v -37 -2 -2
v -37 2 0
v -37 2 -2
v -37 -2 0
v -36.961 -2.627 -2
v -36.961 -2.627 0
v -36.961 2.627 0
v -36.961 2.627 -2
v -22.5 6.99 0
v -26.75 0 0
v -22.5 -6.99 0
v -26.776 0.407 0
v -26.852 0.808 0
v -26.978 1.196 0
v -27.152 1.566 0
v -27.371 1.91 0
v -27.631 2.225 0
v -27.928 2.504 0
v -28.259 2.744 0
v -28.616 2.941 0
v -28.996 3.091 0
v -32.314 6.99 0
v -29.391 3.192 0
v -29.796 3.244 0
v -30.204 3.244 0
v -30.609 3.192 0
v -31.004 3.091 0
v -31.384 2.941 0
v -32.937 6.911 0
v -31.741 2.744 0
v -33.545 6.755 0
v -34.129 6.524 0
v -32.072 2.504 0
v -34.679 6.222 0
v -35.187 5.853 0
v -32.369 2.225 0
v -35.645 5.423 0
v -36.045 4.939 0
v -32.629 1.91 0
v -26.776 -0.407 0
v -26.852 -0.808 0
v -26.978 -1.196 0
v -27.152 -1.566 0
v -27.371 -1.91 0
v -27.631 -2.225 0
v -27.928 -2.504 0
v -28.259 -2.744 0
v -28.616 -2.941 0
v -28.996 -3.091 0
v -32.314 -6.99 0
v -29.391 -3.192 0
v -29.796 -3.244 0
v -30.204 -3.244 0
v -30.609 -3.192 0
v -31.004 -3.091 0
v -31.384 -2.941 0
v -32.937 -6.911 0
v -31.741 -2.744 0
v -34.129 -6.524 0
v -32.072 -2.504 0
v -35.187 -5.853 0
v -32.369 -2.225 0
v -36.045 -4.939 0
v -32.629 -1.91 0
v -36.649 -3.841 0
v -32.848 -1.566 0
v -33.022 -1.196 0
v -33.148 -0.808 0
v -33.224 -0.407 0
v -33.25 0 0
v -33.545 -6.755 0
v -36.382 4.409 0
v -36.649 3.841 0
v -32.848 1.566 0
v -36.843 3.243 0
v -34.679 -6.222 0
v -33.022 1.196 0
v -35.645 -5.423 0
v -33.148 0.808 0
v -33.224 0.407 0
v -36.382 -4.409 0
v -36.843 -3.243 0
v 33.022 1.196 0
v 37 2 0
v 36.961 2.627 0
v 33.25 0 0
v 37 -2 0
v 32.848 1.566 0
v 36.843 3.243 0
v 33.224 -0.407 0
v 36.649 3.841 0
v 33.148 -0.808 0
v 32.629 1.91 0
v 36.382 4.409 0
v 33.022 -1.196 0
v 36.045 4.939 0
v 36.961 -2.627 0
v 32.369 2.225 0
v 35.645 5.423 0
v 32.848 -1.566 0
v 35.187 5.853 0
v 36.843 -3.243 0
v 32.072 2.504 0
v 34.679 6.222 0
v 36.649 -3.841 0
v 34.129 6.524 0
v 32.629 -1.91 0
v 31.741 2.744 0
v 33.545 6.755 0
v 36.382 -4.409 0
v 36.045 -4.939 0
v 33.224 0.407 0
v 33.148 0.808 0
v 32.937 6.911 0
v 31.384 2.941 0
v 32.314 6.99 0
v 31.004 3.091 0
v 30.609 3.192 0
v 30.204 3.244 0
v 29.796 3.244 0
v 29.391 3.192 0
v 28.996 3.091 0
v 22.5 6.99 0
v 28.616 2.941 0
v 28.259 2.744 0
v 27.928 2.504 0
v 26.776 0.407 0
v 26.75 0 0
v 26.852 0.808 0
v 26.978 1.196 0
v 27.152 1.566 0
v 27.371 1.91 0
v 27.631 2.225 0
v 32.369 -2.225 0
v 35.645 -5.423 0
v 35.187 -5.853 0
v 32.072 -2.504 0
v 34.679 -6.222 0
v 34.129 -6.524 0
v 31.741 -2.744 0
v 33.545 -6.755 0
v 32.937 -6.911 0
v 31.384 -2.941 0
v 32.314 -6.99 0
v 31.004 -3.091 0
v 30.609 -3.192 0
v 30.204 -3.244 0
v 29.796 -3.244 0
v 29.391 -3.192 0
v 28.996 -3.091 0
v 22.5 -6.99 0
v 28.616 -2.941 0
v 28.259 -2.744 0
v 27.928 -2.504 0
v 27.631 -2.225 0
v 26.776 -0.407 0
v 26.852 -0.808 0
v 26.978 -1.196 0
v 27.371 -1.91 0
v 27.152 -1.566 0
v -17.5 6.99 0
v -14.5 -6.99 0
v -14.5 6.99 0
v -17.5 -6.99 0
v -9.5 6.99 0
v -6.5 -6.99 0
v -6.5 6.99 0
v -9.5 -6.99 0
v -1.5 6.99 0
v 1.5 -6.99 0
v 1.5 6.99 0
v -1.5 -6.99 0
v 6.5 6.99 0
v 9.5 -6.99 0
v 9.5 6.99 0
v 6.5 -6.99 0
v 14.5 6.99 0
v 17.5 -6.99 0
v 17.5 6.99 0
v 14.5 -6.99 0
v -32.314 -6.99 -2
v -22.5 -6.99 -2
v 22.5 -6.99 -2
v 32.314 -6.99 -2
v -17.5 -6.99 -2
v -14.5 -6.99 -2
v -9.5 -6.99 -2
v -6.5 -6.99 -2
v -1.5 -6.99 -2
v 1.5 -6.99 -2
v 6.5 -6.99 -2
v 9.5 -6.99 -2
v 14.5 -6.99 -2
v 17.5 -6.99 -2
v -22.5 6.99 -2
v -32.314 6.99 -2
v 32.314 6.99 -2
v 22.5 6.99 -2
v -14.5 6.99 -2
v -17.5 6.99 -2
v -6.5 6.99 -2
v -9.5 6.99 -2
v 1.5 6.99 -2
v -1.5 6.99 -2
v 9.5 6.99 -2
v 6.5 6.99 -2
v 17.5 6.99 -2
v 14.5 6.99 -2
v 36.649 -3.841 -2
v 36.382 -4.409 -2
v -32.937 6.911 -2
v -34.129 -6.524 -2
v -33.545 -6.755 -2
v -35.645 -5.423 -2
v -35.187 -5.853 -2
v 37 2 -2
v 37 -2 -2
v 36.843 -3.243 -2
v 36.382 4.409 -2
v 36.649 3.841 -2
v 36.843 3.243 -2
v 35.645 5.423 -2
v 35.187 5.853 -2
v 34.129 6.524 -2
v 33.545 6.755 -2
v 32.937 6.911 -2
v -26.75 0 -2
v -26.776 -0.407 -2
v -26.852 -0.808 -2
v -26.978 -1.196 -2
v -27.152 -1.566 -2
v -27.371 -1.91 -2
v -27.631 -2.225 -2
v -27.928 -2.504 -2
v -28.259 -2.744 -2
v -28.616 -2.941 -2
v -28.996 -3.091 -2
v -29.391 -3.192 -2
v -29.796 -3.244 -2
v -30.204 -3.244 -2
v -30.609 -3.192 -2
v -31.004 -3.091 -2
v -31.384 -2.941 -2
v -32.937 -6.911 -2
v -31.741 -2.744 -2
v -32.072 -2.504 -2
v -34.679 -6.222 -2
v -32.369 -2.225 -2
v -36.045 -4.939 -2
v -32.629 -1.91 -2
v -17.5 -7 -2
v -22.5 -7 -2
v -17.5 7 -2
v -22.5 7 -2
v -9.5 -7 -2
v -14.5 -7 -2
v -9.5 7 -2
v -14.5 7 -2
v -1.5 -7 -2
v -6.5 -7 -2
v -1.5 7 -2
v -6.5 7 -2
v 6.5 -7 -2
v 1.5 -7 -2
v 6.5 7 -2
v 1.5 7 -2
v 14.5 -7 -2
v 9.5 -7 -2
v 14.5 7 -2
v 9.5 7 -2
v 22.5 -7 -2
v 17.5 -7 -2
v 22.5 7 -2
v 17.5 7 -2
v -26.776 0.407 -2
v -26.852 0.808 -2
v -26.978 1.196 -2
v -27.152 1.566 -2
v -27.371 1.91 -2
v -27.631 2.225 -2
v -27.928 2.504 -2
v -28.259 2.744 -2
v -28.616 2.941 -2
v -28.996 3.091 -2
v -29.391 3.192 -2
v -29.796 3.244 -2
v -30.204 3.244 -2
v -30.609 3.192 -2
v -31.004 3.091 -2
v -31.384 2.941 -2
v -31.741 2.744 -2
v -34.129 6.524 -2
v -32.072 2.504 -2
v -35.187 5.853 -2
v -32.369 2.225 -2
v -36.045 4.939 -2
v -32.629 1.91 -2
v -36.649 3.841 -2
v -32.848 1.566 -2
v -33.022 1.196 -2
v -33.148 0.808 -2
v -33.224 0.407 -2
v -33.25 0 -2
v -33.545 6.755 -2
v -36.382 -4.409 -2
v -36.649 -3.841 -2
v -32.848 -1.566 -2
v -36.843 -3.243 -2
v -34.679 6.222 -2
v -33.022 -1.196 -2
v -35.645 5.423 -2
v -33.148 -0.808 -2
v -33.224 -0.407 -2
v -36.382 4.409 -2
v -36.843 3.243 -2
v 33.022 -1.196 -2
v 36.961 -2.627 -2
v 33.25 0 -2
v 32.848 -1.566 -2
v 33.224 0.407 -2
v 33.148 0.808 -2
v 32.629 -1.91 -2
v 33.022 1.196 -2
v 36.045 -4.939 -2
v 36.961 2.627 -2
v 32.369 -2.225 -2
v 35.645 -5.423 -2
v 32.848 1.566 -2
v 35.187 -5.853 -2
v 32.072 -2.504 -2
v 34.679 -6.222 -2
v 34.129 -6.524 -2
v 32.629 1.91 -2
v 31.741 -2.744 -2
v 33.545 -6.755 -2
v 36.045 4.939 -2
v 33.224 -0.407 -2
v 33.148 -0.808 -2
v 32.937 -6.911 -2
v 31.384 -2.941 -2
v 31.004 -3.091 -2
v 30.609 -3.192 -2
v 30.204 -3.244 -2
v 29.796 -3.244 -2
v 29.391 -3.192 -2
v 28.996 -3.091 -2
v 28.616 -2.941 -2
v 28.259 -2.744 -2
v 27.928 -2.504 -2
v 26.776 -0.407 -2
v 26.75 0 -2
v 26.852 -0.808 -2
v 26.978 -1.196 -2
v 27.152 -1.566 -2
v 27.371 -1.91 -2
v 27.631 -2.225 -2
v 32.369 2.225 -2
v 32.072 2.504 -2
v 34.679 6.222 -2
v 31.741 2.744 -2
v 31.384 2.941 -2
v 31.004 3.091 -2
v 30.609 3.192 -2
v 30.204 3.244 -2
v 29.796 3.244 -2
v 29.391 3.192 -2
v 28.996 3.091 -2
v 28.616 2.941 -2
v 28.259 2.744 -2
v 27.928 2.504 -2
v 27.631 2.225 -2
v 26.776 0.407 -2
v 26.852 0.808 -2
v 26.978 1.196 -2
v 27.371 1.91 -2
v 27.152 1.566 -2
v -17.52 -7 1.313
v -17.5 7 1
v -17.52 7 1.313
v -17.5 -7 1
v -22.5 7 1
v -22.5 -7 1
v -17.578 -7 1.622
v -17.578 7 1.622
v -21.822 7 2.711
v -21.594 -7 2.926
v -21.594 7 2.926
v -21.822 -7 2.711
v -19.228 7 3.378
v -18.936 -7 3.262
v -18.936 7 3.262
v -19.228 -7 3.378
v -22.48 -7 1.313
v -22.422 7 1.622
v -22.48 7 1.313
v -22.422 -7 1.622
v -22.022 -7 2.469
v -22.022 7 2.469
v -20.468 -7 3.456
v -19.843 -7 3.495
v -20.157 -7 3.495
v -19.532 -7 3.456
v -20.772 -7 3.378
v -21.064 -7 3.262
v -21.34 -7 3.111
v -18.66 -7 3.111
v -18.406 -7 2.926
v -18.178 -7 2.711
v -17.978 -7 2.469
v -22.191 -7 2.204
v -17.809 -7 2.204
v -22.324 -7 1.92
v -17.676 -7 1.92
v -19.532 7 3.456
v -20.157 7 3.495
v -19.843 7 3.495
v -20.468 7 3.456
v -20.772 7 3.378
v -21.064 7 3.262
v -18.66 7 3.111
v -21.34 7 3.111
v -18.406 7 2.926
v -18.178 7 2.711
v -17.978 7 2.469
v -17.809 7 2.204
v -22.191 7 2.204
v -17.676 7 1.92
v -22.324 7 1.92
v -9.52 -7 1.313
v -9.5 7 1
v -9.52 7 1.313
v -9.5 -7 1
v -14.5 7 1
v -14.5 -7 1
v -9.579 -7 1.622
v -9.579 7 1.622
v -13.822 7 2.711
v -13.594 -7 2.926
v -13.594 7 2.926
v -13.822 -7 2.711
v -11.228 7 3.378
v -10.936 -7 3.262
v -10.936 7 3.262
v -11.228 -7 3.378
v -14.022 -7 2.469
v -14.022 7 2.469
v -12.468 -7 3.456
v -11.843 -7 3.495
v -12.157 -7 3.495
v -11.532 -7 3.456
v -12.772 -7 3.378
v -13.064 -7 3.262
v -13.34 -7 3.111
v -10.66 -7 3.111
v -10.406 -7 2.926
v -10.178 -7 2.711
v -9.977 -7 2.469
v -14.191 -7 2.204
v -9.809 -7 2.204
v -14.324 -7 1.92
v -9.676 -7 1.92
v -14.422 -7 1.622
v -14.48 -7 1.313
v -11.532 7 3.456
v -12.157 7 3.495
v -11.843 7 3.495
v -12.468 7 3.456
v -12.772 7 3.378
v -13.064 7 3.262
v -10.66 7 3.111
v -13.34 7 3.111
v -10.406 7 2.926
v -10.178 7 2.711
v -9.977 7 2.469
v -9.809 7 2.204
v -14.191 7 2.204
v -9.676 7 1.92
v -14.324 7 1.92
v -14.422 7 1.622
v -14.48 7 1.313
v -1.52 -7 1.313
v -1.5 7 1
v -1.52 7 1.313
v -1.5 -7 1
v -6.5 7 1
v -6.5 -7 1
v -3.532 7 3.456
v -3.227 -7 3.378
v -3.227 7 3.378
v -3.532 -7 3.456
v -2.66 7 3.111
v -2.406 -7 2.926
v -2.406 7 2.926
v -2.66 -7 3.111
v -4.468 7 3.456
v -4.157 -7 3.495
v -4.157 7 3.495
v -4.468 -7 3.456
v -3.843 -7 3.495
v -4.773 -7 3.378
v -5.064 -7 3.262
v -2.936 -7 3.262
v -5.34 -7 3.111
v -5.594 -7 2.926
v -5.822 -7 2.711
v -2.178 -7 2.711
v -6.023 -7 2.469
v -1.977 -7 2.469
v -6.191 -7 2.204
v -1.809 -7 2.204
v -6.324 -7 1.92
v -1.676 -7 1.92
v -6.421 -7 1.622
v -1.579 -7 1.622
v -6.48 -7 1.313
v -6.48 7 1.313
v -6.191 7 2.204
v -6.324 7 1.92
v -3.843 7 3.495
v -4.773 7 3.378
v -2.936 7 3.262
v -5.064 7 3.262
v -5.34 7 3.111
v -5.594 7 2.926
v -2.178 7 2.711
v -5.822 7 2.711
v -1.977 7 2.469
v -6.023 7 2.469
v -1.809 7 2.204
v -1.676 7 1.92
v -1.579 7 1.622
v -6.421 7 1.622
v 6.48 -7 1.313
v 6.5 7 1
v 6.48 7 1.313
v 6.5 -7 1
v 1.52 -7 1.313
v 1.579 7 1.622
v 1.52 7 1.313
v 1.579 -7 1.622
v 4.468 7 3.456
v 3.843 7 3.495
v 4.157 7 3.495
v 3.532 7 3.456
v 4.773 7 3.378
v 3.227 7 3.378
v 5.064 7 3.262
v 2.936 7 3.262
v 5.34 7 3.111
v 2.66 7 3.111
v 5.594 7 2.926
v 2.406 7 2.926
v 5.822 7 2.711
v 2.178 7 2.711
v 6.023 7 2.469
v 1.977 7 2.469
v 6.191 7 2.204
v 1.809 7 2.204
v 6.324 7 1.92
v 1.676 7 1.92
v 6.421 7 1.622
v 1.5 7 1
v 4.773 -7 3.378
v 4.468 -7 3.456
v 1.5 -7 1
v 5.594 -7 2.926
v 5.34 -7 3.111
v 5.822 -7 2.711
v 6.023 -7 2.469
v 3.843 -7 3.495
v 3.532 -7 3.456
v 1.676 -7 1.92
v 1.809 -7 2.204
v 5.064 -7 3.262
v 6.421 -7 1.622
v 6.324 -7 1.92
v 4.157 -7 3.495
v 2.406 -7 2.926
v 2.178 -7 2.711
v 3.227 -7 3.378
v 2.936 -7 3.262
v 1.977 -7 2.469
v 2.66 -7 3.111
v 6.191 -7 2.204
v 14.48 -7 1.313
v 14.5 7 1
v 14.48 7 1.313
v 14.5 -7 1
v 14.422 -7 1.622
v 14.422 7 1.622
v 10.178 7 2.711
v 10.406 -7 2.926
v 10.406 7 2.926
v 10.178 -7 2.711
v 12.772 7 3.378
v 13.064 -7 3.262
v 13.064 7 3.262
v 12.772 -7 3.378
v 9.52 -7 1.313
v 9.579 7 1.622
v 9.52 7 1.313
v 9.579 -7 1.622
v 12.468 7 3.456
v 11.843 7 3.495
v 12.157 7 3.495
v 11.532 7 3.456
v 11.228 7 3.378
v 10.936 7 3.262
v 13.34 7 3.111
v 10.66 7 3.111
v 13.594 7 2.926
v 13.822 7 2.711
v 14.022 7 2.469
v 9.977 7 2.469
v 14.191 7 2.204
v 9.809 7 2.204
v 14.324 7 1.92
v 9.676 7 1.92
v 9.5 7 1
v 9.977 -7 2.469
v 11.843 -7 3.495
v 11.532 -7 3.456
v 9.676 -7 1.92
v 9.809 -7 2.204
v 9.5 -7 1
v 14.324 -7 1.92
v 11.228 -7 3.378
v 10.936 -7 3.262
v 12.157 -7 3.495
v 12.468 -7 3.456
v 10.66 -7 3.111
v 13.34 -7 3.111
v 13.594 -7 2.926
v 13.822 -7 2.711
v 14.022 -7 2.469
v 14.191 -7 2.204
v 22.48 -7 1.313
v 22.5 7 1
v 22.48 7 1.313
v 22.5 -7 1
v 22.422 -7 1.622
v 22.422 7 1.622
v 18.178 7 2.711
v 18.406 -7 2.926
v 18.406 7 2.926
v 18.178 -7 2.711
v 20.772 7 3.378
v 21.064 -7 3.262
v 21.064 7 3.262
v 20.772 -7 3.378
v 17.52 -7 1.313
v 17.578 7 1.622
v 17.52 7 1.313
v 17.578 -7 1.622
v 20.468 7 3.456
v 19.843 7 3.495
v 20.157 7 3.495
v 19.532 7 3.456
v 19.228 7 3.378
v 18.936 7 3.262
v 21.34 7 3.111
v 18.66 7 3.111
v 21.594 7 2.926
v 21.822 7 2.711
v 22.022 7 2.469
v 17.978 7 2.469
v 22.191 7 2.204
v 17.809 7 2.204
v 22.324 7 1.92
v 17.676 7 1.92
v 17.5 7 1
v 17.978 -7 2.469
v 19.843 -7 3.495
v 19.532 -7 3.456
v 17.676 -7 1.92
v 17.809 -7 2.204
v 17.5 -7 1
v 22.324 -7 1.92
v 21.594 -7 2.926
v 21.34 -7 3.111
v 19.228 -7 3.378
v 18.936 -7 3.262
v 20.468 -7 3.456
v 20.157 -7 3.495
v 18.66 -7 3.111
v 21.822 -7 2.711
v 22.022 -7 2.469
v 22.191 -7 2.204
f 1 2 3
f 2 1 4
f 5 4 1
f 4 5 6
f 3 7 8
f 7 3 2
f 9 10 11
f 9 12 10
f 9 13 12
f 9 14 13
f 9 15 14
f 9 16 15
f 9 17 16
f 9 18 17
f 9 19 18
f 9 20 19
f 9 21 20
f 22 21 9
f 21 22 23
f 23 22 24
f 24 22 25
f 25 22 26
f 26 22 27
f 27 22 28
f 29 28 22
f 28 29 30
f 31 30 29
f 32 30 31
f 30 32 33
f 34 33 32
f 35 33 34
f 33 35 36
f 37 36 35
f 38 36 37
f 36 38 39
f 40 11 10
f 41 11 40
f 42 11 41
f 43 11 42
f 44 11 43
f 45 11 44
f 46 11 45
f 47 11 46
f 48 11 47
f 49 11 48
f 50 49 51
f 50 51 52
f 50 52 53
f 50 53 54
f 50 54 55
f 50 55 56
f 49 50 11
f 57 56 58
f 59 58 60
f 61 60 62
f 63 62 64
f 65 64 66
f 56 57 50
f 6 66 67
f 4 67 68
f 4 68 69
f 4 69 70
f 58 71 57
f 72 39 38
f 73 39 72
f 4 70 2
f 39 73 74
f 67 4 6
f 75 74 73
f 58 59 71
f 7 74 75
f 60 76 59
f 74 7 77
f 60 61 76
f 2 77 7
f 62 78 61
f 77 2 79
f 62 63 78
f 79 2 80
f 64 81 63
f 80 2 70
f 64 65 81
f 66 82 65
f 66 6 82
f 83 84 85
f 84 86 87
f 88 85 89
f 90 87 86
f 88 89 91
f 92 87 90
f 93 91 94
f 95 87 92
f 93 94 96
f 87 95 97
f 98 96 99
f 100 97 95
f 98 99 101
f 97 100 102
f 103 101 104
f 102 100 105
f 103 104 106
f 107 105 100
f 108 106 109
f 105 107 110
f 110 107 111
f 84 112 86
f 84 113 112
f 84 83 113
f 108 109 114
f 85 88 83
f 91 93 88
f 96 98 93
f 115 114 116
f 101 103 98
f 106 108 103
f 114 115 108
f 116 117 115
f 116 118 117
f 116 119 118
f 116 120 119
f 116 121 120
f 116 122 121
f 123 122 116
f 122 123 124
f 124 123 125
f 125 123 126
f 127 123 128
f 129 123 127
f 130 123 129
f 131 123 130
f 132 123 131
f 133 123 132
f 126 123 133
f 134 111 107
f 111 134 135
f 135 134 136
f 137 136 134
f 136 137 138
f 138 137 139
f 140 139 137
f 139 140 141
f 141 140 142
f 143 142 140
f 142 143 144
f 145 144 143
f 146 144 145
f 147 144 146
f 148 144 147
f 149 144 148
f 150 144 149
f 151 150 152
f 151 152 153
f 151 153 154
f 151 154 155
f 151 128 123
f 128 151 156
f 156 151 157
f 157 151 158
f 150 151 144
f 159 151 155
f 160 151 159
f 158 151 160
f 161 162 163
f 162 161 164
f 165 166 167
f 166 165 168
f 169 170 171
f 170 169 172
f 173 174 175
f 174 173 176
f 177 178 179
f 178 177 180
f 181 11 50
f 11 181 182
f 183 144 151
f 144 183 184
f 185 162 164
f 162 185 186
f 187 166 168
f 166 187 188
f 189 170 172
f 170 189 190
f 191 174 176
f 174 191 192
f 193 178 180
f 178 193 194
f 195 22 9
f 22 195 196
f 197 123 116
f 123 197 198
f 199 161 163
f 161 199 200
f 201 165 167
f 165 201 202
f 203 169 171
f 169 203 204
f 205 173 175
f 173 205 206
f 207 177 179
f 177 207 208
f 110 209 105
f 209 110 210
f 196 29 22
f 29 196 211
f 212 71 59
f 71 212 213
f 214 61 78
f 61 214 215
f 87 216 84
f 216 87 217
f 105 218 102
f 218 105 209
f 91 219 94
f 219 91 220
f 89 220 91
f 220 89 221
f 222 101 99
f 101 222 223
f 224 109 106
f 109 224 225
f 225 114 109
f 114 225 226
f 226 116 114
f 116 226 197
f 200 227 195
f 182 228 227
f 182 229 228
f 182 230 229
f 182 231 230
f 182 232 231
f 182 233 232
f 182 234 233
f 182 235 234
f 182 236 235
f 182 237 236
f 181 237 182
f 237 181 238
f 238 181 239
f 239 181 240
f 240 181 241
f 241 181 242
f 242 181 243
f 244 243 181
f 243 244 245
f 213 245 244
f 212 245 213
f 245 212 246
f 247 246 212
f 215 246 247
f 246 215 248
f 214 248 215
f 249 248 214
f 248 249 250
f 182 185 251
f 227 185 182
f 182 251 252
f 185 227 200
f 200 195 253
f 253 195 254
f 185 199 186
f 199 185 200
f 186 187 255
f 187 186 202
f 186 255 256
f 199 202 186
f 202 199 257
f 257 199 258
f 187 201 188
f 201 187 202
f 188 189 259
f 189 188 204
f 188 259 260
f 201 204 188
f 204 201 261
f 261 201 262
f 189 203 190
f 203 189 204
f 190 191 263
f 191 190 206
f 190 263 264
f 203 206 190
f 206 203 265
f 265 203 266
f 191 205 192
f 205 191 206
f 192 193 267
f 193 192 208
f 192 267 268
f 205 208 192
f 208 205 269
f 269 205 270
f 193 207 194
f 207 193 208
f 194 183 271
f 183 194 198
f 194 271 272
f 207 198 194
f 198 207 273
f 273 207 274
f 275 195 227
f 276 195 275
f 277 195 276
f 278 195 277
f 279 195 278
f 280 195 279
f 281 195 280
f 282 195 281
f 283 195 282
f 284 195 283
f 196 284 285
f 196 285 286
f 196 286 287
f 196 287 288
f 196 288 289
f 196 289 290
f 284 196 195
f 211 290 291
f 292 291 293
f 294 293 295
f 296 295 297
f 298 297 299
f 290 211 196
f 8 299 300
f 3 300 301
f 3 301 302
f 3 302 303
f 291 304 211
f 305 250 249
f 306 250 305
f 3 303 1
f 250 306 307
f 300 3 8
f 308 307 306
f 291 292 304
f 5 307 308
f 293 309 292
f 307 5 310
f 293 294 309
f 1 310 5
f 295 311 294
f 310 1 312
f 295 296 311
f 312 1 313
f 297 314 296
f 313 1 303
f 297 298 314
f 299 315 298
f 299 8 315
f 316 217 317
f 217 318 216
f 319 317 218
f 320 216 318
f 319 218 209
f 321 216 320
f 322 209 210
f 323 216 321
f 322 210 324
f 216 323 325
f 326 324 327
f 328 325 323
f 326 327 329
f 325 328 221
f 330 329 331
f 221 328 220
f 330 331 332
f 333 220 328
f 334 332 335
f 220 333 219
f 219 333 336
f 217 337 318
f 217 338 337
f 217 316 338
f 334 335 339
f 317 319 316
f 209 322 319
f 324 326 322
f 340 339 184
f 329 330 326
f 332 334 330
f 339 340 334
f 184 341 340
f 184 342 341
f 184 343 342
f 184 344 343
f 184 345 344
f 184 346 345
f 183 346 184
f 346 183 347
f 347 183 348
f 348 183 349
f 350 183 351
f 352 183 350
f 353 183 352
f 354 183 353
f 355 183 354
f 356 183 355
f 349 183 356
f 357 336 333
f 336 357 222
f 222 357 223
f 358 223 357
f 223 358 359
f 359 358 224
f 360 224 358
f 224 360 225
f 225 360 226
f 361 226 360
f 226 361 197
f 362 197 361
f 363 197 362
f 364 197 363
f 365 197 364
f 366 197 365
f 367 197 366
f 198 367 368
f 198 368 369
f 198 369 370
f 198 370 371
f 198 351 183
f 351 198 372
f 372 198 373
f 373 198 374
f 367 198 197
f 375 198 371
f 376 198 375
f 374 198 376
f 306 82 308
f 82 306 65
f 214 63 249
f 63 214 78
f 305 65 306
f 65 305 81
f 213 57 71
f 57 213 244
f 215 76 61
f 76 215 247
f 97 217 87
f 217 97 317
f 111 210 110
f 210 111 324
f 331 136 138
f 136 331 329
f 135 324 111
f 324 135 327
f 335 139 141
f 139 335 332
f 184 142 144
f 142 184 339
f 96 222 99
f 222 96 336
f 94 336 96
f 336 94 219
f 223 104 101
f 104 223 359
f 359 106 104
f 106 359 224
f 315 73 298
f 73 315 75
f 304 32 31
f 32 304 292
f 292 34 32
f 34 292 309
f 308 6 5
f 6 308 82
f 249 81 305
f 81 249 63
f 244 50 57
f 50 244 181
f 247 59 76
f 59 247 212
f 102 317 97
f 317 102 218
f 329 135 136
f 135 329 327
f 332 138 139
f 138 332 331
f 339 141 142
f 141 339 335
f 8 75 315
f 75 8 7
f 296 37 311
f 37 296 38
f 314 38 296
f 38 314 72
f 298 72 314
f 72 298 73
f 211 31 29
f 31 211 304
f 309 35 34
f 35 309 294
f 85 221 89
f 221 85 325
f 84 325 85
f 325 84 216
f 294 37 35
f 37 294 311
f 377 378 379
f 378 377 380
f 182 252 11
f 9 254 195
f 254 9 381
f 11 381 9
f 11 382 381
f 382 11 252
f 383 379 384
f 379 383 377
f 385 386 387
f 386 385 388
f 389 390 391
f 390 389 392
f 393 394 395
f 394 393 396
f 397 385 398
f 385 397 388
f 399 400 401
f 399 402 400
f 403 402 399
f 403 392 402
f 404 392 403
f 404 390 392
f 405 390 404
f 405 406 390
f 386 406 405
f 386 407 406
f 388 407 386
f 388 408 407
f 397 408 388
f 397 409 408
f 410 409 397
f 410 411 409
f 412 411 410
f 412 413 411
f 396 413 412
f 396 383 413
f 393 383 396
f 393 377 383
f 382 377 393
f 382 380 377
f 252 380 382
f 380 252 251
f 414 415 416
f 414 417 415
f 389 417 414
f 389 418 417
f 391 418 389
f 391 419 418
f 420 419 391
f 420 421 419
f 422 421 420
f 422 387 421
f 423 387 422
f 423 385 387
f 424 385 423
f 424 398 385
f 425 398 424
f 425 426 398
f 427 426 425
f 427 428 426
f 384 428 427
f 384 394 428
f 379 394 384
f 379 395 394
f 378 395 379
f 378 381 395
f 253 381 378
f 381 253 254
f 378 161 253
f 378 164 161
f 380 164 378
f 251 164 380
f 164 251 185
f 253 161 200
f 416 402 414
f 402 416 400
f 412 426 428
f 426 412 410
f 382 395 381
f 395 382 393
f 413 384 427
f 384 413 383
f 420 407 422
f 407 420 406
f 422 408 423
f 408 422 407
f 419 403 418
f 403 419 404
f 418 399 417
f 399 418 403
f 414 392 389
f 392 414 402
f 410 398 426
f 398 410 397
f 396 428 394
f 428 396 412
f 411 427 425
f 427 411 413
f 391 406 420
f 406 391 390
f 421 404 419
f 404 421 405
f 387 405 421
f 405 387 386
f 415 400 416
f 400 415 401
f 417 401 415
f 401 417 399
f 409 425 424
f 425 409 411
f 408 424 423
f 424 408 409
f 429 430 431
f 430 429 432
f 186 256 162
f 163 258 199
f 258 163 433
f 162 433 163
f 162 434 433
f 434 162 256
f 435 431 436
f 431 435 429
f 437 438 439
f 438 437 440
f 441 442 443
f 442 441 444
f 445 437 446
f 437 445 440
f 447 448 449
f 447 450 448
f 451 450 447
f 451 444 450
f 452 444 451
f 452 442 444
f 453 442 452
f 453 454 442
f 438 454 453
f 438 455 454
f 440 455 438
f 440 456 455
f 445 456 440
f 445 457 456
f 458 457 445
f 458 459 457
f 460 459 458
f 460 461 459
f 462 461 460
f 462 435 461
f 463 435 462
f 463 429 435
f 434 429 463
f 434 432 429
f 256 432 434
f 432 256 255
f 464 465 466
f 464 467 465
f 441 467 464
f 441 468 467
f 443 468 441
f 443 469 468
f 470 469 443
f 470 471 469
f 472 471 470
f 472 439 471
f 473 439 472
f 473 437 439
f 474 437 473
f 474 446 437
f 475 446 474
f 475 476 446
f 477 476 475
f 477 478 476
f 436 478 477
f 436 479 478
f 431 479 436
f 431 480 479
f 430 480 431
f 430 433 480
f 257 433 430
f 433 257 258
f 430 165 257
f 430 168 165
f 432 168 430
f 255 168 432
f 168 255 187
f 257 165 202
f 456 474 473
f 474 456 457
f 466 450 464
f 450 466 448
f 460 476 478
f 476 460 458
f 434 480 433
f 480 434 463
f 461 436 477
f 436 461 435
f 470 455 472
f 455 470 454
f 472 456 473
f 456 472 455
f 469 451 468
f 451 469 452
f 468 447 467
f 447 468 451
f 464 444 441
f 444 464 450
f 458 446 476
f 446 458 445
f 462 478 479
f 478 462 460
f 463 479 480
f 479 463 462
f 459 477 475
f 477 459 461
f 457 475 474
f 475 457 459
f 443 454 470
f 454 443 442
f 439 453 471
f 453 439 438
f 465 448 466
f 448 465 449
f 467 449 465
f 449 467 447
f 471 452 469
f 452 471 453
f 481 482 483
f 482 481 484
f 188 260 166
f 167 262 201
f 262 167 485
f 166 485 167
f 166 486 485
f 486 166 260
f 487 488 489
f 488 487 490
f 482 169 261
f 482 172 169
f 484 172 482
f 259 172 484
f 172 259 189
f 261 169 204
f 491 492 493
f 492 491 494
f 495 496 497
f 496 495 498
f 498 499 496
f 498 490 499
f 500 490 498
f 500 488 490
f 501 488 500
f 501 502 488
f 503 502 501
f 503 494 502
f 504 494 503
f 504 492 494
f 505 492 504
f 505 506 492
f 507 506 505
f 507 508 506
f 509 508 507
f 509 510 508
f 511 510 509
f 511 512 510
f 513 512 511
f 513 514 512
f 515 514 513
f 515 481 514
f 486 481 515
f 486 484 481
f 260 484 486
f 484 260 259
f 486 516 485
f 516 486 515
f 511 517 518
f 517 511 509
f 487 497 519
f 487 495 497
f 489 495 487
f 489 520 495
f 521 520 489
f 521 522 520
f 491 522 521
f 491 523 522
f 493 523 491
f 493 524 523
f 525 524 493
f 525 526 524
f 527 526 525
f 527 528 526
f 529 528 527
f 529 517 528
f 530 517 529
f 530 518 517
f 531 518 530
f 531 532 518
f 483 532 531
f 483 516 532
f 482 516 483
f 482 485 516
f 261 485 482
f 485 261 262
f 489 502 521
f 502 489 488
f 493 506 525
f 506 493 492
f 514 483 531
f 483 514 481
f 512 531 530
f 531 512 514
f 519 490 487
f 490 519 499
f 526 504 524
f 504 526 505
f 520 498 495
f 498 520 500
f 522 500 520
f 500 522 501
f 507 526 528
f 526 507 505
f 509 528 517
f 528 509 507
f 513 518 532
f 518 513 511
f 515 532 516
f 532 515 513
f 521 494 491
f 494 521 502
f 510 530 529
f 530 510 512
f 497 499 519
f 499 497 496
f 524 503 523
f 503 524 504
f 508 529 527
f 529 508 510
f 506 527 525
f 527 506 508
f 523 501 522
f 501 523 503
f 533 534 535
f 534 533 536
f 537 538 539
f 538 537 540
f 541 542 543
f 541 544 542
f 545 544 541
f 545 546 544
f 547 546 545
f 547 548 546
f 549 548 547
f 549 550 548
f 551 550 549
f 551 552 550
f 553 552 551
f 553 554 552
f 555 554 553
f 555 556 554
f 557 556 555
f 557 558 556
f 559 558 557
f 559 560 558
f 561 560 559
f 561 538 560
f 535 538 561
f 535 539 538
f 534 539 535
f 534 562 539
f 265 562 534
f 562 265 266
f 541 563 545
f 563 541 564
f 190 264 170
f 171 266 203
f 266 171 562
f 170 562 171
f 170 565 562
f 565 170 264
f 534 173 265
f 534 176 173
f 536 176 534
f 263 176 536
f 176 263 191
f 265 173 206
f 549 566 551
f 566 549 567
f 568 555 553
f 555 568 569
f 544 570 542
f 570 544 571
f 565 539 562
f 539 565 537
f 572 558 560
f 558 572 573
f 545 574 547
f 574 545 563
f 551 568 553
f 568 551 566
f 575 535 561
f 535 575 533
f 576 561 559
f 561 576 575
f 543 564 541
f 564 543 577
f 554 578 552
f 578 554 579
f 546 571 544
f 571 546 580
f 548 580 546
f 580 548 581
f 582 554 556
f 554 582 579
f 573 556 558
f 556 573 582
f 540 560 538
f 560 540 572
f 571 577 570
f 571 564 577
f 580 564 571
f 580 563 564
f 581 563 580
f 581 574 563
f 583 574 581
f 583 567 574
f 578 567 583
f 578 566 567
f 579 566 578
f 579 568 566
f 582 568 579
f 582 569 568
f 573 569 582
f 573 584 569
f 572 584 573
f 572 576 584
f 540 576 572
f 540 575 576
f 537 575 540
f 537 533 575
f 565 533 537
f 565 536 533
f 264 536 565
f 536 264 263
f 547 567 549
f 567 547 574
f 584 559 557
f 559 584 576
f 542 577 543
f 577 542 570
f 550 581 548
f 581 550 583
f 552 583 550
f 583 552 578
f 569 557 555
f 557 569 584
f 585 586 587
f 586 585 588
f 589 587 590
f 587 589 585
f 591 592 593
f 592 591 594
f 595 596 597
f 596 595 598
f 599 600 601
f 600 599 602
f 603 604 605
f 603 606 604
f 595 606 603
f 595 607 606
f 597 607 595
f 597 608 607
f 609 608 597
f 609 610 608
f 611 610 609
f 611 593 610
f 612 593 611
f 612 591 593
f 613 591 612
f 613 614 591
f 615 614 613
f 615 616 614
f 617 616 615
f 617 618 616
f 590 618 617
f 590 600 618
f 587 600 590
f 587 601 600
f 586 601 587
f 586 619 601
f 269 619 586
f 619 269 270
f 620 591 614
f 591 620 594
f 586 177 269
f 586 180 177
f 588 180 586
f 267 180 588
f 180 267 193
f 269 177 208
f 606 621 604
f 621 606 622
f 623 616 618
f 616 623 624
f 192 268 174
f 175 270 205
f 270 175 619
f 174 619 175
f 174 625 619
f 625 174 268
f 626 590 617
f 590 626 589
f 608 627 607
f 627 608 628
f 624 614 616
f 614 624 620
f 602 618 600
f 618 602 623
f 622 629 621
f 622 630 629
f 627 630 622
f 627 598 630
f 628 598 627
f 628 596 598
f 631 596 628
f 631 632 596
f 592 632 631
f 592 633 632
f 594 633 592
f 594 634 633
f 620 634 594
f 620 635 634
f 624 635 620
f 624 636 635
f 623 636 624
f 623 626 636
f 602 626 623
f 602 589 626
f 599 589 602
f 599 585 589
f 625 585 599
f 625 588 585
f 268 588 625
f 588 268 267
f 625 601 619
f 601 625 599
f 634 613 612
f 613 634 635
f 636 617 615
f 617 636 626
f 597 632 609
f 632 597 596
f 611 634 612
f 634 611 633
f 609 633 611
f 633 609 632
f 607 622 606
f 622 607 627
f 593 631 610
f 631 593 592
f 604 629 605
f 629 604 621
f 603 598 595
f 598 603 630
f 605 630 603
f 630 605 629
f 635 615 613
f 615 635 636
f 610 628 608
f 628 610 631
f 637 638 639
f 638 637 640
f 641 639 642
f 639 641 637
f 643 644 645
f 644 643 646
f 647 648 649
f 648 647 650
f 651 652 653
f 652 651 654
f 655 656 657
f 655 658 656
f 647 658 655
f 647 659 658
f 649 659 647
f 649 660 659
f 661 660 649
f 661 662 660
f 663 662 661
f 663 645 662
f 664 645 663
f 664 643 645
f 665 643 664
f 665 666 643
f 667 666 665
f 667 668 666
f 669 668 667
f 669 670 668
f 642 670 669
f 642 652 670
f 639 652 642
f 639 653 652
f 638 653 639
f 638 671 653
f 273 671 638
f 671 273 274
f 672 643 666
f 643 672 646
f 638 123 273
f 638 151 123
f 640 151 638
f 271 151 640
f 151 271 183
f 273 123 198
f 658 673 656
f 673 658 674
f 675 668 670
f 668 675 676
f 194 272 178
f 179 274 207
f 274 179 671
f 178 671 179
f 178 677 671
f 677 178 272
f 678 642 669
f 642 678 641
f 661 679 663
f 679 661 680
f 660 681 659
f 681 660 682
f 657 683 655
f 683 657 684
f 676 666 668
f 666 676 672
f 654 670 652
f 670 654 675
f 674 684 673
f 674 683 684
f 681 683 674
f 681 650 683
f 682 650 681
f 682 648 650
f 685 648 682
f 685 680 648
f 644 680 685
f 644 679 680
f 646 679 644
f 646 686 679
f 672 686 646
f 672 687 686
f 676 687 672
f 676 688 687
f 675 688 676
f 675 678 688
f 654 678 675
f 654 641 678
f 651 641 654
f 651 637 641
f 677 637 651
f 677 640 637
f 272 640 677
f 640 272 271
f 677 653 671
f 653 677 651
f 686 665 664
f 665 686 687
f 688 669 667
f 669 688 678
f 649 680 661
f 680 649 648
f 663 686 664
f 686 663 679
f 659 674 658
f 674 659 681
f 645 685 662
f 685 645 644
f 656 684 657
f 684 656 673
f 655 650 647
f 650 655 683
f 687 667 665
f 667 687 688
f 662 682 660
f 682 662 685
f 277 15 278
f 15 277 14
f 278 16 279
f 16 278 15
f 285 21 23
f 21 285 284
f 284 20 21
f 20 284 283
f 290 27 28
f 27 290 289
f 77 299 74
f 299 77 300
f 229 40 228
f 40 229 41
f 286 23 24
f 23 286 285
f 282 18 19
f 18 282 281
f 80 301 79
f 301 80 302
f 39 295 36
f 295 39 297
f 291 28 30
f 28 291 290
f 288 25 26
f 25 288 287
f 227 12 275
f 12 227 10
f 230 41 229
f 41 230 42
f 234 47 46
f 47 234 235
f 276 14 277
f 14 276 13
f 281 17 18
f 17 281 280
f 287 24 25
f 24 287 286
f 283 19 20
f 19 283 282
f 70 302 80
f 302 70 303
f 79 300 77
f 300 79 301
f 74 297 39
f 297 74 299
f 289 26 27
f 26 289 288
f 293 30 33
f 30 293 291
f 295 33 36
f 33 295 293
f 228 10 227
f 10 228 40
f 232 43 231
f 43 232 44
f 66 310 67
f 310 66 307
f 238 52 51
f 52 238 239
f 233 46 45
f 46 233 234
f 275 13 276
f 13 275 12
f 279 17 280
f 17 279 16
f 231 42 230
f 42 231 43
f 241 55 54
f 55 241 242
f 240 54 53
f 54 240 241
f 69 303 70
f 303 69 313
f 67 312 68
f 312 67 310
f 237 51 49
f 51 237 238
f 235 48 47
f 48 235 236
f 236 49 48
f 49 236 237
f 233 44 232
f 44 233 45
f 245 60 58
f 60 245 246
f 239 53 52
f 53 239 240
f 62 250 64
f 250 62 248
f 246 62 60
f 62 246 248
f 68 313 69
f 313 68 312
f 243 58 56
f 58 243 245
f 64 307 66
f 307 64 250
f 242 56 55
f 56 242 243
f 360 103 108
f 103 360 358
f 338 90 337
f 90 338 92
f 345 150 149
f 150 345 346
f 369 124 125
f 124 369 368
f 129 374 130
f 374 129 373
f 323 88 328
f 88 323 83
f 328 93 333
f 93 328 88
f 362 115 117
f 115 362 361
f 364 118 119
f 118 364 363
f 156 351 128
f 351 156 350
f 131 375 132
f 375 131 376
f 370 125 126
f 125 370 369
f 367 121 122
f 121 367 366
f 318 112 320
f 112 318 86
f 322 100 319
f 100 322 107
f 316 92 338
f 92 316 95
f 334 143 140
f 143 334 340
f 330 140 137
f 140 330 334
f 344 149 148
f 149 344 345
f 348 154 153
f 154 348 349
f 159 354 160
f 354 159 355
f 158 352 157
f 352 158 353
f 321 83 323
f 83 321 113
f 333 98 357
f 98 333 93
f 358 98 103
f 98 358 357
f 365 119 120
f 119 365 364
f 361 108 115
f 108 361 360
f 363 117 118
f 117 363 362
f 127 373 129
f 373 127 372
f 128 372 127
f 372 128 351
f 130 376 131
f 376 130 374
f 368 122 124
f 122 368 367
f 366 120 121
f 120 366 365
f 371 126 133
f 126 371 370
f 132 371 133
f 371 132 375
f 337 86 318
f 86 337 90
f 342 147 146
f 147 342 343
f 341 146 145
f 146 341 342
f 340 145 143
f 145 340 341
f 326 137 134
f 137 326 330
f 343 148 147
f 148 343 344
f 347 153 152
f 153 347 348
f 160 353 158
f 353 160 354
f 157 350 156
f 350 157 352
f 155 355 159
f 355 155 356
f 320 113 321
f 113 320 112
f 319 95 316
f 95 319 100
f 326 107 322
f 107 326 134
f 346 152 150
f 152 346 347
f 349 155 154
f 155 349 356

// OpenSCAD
$fn = 50;


difference() {
	union() {
		translate(v = [0, 0, -2]) {
			hull() {
				translate(v = [-32.0000000000, 2.0000000000, 0]) {
					cylinder(h = 2, r = 5);
				}
				translate(v = [32.0000000000, 2.0000000000, 0]) {
					cylinder(h = 2, r = 5);
				}
				translate(v = [-32.0000000000, -2.0000000000, 0]) {
					cylinder(h = 2, r = 5);
				}
				translate(v = [32.0000000000, -2.0000000000, 0]) {
					cylinder(h = 2, r = 5);
				}
			}
		}
		translate(v = [-20.0000000000, 7.0000000000, -1.5000000000]) {
			rotate(a = [90, 0, 0]) {
				hull() {
					translate(v = [-0.0000000000, 2.5000000000, 0]) {
						cylinder(h = 14, r = 2.5000000000);
					}
					translate(v = [0.0000000000, 2.5000000000, 0]) {
						cylinder(h = 14, r = 2.5000000000);
					}
					translate(v = [-0.0000000000, -2.5000000000, 0]) {
						cylinder(h = 14, r = 2.5000000000);
					}
					translate(v = [0.0000000000, -2.5000000000, 0]) {
						cylinder(h = 14, r = 2.5000000000);
					}
				}
			}
		}
		translate(v = [-12.0000000000, 7.0000000000, -1.5000000000]) {
			rotate(a = [90, 0, 0]) {
				hull() {
					translate(v = [-0.0000000000, 2.5000000000, 0]) {
						cylinder(h = 14, r = 2.5000000000);
					}
					translate(v = [0.0000000000, 2.5000000000, 0]) {
						cylinder(h = 14, r = 2.5000000000);
					}
					translate(v = [-0.0000000000, -2.5000000000, 0]) {
						cylinder(h = 14, r = 2.5000000000);
					}
					translate(v = [0.0000000000, -2.5000000000, 0]) {
						cylinder(h = 14, r = 2.5000000000);
					}
				}
			}
		}
		translate(v = [-4.0000000000, 7.0000000000, -1.5000000000]) {
			rotate(a = [90, 0, 0]) {
				hull() {
					translate(v = [-0.0000000000, 2.5000000000, 0]) {
						cylinder(h = 14, r = 2.5000000000);
					}
					translate(v = [0.0000000000, 2.5000000000, 0]) {
						cylinder(h = 14, r = 2.5000000000);
					}
					translate(v = [-0.0000000000, -2.5000000000, 0]) {
						cylinder(h = 14, r = 2.5000000000);
					}
					translate(v = [0.0000000000, -2.5000000000, 0]) {
						cylinder(h = 14, r = 2.5000000000);
					}
				}
			}
		}
		translate(v = [4.0000000000, 7.0000000000, -1.5000000000]) {
			rotate(a = [90, 0, 0]) {
				hull() {
					translate(v = [-0.0000000000, 2.5000000000, 0]) {
						cylinder(h = 14, r = 2.5000000000);
					}
					translate(v = [0.0000000000, 2.5000000000, 0]) {
						cylinder(h = 14, r = 2.5000000000);
					}
					translate(v = [-0.0000000000, -2.5000000000, 0]) {
						cylinder(h = 14, r = 2.5000000000);
					}
					translate(v = [0.0000000000, -2.5000000000, 0]) {
						cylinder(h = 14, r = 2.5000000000);
					}
				}
			}
		}
		translate(v = [12.0000000000, 7.0000000000, -1.5000000000]) {
			rotate(a = [90, 0, 0]) {
				hull() {
					translate(v = [-0.0000000000, 2.5000000000, 0]) {
						cylinder(h = 14, r = 2.5000000000);
					}
					translate(v = [0.0000000000, 2.5000000000, 0]) {
						cylinder(h = 14, r = 2.5000000000);
					}
					translate(v = [-0.0000000000, -2.5000000000, 0]) {
						cylinder(h = 14, r = 2.5000000000);
					}
					translate(v = [0.0000000000, -2.5000000000, 0]) {
						cylinder(h = 14, r = 2.5000000000);
					}
				}
			}
		}
		translate(v = [20.0000000000, 7.0000000000, -1.5000000000]) {
			rotate(a = [90, 0, 0]) {
				hull() {
					translate(v = [-0.0000000000, 2.5000000000, 0]) {
						cylinder(h = 14, r = 2.5000000000);
					}
					translate(v = [0.0000000000, 2.5000000000, 0]) {
						cylinder(h = 14, r = 2.5000000000);
					}
					translate(v = [-0.0000000000, -2.5000000000, 0]) {
						cylinder(h = 14, r = 2.5000000000);
					}
					translate(v = [0.0000000000, -2.5000000000, 0]) {
						cylinder(h = 14, r = 2.5000000000);
					}
				}
			}
		}
	}
	union() {
		translate(v = [-250.0000000000, -250.0000000000, -502]) {
			cube(size = [500, 500, 500]);
		}
		translate(v = [-250.0000000000, -250.0000000000, -502]) {
			cube(size = [500, 500, 500]);
		}
		translate(v = [-250.0000000000, -250.0000000000, -502]) {
			cube(size = [500, 500, 500]);
		}
		translate(v = [-30.0000000000, 0.0000000000, -100.0000000000]) {
			cylinder(h = 200, r = 3.2500000000);
		}
		translate(v = [30.0000000000, 0.0000000000, -100.0000000000]) {
			cylinder(h = 200, r = 3.2500000000);
		}
		translate(v = [30.0000000000, 0.0000000000, -100.0000000000]) {
			cylinder(h = 200, r = 3.2500000000);
		}
		translate(v = [-30.0000000000, 0.0000000000, -100.0000000000]) {
			cylinder(h = 200, r = 1.8000000000);
		}
		translate(v = [30.0000000000, 0.0000000000, -100.0000000000]) {
			cylinder(h = 200, r = 1.8000000000);
		}
		translate(v = [-30.0000000000, 0.0000000000, -100.0000000000]) {
			cylinder(h = 200, r = 1.8000000000);
		}
		translate(v = [30.0000000000, 0.0000000000, -100.0000000000]) {
			cylinder(h = 200, r = 1.8000000000);
		}
		translate(v = [-30.0000000000, 0.0000000000, -100.0000000000]) {
			cylinder(h = 200, r = 1.8000000000);
		}
		translate(v = [30.0000000000, 0.0000000000, -100.0000000000]) {
			cylinder(h = 200, r = 1.8000000000);
		}
	}
}
